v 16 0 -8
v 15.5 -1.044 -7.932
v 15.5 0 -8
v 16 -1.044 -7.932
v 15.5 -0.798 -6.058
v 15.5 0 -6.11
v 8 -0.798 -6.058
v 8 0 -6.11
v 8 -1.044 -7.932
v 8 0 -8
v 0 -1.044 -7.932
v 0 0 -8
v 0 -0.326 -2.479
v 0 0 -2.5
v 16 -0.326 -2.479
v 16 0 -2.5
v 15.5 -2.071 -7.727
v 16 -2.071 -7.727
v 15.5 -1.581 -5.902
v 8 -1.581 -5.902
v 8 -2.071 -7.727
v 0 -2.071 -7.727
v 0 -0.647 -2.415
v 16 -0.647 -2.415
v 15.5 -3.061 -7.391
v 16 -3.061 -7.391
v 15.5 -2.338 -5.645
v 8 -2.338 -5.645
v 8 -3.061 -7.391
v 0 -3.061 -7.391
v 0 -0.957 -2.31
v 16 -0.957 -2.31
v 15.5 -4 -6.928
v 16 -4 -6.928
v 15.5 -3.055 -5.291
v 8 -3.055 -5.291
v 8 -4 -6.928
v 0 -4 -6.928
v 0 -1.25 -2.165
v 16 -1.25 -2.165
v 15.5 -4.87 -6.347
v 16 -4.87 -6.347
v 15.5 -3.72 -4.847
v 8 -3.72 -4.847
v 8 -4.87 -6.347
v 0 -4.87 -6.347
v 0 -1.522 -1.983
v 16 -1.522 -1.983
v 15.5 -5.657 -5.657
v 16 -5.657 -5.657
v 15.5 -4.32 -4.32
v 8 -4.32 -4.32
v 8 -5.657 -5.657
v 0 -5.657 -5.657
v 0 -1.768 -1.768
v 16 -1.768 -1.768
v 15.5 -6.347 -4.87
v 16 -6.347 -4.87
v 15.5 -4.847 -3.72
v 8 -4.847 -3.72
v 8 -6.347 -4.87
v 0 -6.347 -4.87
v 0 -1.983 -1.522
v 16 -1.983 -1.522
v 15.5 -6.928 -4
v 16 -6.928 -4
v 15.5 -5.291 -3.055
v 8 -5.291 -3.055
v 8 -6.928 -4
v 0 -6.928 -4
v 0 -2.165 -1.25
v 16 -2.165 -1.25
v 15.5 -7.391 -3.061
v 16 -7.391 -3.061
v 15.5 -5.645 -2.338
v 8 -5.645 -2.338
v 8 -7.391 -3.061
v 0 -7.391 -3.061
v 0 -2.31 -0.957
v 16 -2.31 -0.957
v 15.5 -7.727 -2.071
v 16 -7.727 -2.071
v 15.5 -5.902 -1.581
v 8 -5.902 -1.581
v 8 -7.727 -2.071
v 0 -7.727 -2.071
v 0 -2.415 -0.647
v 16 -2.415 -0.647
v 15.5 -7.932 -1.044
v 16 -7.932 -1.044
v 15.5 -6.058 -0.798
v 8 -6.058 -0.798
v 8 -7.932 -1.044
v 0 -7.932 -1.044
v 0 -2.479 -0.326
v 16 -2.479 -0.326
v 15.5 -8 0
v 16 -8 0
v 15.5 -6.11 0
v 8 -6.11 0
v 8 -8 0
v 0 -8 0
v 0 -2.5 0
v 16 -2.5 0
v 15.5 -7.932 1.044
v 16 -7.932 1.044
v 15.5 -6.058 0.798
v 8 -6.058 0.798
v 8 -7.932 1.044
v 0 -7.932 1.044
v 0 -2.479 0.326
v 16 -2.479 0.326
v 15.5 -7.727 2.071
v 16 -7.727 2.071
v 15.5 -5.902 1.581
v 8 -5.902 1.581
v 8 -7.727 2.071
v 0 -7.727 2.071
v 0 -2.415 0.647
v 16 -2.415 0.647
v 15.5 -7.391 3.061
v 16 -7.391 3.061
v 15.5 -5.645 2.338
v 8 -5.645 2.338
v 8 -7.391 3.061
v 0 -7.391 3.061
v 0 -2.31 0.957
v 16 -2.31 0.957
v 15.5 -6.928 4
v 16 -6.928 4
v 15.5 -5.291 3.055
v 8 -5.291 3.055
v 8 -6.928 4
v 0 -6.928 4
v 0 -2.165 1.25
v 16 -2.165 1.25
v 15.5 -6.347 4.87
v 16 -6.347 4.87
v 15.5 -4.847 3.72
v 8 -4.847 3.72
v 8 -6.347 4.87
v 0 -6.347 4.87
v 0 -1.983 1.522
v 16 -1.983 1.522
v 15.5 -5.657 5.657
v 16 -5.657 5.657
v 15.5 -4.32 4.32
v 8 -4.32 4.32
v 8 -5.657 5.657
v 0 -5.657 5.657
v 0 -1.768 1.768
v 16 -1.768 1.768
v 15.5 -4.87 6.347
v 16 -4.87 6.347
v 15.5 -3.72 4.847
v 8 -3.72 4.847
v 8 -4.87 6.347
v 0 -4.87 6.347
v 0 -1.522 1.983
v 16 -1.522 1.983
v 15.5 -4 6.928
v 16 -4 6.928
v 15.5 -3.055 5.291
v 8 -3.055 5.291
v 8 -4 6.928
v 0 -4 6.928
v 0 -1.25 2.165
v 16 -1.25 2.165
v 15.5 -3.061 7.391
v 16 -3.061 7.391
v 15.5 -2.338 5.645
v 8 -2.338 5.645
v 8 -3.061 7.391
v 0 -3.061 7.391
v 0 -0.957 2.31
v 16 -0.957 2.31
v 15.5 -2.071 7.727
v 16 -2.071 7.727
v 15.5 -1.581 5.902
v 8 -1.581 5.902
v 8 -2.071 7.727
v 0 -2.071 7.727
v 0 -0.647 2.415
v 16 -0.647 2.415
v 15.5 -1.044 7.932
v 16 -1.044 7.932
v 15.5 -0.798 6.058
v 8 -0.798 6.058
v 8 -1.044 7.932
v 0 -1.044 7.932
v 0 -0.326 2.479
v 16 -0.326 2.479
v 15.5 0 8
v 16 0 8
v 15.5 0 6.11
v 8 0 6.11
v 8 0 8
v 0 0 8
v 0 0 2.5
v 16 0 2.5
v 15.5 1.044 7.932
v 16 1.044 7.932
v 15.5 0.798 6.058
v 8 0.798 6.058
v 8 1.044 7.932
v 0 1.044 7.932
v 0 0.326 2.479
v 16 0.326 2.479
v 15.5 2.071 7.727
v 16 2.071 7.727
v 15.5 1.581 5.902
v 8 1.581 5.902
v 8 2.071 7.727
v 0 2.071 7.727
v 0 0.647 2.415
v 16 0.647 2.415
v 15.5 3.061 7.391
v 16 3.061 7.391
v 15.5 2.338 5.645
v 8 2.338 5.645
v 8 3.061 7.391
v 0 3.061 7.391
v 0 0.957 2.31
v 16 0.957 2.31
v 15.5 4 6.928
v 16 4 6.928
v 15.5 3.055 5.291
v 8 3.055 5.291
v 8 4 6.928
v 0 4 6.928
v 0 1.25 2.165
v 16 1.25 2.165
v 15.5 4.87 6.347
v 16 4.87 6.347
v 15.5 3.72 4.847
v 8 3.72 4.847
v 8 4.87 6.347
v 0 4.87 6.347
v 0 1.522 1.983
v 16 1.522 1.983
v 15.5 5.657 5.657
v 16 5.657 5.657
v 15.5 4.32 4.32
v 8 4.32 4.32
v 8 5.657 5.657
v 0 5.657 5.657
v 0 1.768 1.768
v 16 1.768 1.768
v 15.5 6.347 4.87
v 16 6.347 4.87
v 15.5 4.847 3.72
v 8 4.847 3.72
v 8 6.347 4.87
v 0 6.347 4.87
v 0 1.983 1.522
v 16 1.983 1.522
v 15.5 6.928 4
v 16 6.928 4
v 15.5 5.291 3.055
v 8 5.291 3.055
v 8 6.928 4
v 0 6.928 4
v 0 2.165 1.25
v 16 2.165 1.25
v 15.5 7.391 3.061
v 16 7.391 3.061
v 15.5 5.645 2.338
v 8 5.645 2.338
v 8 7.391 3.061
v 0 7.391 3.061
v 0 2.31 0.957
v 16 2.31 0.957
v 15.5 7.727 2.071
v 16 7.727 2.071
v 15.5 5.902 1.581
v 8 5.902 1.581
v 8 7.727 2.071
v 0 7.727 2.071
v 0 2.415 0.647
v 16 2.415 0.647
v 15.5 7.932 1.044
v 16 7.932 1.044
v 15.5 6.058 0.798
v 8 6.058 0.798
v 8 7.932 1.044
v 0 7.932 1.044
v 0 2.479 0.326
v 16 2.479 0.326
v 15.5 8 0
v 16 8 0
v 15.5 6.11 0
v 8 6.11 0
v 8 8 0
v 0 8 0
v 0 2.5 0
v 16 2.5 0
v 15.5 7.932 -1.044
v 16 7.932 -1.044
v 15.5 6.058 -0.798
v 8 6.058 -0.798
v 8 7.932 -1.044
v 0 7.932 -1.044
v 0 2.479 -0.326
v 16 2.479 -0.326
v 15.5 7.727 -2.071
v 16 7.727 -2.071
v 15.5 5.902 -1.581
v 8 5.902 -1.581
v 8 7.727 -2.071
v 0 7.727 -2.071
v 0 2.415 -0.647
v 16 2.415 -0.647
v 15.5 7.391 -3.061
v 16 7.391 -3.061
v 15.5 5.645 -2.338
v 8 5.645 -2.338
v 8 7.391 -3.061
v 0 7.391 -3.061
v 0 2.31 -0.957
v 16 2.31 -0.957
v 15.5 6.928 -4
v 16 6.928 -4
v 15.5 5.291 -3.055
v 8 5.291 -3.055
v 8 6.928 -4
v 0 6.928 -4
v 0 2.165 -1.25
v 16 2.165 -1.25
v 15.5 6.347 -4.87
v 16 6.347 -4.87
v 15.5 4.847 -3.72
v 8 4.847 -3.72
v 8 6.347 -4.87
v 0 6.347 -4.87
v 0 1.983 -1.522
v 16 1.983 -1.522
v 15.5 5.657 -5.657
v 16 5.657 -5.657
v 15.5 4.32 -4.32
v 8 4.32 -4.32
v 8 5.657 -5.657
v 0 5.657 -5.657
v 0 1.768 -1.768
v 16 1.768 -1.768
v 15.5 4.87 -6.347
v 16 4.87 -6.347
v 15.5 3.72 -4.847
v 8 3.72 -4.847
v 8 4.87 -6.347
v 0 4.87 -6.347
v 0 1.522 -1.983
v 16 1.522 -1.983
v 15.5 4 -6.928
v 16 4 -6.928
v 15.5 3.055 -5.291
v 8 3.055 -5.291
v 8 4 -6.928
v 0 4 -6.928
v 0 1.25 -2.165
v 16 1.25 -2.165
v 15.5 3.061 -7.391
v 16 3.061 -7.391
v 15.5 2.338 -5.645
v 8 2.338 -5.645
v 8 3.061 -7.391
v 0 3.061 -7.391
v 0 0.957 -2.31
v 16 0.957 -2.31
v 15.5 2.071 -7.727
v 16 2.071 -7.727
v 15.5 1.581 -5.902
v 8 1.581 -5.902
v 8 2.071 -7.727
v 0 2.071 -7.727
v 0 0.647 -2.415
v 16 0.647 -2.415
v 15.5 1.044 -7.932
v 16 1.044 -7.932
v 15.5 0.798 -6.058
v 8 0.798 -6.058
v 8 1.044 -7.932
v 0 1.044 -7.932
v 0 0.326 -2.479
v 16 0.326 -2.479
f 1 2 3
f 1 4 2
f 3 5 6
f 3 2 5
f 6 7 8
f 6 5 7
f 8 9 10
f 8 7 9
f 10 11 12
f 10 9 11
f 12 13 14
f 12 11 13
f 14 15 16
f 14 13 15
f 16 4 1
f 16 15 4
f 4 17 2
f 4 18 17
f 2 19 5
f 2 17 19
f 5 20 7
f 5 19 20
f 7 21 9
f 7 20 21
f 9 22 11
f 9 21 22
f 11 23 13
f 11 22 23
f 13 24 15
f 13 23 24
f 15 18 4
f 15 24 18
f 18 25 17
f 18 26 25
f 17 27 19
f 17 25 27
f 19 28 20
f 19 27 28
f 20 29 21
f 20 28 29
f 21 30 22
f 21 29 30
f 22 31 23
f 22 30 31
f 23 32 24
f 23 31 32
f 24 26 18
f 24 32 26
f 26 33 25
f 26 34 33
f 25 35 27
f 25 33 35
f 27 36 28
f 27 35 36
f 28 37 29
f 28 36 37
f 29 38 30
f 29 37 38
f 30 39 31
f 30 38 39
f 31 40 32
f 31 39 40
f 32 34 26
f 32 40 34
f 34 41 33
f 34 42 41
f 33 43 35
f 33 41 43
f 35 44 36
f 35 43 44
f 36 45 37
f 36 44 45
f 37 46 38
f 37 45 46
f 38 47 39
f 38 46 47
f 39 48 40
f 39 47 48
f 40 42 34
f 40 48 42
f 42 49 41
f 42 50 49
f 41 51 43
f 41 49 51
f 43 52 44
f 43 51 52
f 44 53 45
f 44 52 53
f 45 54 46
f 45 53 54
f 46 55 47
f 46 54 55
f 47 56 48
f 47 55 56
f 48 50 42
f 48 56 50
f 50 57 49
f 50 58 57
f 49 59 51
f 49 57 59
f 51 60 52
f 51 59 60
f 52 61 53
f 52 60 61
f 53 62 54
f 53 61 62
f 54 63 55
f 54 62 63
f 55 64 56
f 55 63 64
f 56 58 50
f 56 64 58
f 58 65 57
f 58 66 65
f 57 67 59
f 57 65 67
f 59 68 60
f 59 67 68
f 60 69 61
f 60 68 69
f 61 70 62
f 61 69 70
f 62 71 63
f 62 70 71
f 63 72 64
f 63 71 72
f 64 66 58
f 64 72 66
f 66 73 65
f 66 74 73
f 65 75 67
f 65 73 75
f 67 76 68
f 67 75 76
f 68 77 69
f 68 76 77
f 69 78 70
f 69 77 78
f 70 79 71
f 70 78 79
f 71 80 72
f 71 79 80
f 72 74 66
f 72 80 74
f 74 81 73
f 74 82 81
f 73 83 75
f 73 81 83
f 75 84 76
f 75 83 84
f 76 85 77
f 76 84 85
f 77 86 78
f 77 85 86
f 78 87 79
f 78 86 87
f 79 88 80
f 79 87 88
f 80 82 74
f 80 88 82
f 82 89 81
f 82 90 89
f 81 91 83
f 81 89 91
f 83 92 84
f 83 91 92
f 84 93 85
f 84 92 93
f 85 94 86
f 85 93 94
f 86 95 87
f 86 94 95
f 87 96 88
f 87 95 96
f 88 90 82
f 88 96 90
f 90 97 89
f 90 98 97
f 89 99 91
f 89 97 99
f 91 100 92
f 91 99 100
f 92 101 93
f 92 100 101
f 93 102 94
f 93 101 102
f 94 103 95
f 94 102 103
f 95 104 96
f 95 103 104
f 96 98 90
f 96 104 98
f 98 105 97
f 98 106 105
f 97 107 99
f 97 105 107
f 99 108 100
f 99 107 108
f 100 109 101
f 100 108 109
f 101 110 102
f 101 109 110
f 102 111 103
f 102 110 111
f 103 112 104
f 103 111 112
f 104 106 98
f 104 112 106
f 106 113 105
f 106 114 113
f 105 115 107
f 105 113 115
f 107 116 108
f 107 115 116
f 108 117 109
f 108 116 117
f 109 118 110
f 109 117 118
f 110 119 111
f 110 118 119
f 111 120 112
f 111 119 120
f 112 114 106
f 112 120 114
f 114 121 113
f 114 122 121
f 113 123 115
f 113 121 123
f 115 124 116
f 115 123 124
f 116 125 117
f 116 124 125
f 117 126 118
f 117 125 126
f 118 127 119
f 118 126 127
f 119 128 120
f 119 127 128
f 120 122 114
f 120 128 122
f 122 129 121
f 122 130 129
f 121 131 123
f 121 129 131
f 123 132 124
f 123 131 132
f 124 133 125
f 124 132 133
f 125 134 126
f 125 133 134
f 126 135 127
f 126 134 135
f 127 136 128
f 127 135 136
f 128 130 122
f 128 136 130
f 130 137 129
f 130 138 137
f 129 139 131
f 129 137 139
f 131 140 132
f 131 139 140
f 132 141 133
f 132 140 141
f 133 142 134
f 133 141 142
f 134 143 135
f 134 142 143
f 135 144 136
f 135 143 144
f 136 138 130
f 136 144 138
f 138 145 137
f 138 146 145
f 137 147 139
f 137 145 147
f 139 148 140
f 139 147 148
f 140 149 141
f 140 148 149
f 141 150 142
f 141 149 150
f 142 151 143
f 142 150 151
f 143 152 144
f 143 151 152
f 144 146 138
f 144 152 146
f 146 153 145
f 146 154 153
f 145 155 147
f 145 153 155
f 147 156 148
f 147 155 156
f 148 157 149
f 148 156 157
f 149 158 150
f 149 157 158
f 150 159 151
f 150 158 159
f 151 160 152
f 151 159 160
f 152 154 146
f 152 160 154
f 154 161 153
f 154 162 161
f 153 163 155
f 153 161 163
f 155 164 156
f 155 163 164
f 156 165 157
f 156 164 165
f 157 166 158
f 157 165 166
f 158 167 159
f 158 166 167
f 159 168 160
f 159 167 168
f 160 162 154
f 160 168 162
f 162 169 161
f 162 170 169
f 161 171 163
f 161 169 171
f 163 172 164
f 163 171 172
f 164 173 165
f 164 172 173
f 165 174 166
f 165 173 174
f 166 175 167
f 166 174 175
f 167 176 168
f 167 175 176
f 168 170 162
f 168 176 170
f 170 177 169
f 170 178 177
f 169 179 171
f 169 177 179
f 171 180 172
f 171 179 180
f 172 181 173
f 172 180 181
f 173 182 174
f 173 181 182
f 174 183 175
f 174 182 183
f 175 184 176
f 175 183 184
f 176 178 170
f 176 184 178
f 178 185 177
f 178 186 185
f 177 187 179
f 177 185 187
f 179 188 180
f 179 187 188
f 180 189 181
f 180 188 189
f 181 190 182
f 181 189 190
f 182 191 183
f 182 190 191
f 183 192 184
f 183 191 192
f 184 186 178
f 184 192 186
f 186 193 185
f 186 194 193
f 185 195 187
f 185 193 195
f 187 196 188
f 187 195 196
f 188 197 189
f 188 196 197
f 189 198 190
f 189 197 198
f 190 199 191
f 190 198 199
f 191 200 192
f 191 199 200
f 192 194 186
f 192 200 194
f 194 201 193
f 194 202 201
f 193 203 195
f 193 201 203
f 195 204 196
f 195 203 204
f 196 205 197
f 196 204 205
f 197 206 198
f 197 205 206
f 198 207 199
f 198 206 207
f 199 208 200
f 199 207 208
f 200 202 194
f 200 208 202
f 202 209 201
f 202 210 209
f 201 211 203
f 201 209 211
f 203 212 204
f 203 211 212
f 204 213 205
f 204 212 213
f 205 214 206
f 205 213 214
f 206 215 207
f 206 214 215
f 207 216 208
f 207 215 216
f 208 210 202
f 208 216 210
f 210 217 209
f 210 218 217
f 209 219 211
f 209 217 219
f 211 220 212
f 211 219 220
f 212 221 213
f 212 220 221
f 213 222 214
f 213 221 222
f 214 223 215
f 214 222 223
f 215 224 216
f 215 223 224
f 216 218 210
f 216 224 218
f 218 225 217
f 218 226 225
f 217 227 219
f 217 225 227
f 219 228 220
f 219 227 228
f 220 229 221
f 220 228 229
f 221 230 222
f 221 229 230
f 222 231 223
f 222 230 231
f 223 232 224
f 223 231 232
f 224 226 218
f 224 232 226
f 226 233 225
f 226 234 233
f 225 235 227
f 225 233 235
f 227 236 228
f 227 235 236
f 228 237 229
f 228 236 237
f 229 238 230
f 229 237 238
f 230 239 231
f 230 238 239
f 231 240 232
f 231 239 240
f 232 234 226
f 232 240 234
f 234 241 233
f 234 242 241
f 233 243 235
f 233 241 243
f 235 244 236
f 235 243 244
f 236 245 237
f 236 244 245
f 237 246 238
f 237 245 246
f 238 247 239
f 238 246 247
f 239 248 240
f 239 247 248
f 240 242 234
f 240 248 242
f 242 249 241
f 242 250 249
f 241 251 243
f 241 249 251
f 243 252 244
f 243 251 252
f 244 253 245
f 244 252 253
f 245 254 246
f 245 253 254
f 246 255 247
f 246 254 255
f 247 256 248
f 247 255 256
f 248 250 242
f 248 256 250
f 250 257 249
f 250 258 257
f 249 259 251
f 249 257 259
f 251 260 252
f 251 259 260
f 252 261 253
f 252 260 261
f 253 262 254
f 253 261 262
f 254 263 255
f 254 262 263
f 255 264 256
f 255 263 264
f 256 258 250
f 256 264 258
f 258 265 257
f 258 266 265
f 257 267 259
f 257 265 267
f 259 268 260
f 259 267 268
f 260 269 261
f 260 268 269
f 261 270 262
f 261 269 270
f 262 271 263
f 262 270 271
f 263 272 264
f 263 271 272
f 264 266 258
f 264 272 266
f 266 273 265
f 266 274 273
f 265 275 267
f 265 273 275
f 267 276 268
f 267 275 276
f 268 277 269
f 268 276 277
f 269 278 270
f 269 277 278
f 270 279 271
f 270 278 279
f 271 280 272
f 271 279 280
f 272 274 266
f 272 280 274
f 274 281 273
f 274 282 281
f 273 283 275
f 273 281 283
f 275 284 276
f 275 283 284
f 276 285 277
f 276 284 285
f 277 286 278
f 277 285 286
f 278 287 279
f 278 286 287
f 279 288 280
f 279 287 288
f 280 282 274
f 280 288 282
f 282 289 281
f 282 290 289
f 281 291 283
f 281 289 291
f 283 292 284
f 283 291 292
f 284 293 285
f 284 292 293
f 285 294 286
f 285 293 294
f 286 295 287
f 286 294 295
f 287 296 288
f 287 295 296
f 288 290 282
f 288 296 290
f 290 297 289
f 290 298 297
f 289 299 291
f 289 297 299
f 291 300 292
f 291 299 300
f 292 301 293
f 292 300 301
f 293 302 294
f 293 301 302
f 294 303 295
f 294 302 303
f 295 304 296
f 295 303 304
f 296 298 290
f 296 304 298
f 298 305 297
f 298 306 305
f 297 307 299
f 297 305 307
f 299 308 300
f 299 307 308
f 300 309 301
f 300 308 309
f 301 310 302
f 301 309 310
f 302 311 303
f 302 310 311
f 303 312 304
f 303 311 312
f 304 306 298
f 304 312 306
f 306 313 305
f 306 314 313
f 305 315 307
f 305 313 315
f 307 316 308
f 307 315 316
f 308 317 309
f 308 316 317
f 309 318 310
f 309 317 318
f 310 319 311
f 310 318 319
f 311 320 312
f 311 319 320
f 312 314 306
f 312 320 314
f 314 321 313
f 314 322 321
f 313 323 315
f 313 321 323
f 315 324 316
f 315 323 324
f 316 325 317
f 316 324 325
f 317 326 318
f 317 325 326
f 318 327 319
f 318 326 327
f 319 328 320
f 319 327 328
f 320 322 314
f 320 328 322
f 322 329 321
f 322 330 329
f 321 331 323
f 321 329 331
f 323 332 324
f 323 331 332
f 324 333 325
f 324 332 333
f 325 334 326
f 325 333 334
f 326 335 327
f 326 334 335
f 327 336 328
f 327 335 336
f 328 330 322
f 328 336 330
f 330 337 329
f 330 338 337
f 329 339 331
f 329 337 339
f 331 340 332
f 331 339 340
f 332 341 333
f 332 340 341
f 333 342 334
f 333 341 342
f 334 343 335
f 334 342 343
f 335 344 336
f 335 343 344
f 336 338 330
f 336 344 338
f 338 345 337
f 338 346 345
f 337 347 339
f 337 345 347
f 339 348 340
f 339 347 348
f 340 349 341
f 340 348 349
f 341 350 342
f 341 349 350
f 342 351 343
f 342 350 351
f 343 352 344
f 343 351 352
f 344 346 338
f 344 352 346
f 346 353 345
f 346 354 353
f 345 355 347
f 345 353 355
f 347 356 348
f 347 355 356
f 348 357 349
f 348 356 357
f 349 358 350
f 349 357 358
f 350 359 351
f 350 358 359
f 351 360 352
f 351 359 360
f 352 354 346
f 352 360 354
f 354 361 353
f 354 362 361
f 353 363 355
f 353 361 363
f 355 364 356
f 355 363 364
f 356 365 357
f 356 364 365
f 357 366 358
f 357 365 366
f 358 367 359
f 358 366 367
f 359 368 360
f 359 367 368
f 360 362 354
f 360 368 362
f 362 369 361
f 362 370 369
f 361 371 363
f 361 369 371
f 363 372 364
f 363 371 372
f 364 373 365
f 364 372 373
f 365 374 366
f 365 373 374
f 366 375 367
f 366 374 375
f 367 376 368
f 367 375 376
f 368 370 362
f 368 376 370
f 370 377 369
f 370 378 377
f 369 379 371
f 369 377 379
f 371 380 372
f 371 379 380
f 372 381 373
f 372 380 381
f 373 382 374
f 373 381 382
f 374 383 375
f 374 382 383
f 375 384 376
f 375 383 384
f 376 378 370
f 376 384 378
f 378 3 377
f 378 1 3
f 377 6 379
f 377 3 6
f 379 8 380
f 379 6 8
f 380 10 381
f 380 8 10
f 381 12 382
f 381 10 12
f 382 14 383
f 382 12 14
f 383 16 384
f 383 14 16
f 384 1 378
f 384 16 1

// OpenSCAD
/**********************************************************************************************************************
 **
 ** parts/vitamins/gt2_pulley_20t_5mm.scad
 **
 ** This file renders a standard GT2 pulley with 20 teeth and a bore of 5mm.
 **
 **********************************************************************************************************************/

rotate([0, 90, 0])
	rotate_extrude($fn = 48)
		rotate([0, 0, 90])
			polygon(points = [
				[ 0.00, 2.50],
				[ 0.00, 8.00],
				[ 8.00, 8.00],
				[ 8.00, 6.11],
				[15.50, 6.11],
				[15.50, 8.00],
				[16.00, 8.00],
				[16.00, 2.50],
				[ 0.00, 2.50]
			]);
